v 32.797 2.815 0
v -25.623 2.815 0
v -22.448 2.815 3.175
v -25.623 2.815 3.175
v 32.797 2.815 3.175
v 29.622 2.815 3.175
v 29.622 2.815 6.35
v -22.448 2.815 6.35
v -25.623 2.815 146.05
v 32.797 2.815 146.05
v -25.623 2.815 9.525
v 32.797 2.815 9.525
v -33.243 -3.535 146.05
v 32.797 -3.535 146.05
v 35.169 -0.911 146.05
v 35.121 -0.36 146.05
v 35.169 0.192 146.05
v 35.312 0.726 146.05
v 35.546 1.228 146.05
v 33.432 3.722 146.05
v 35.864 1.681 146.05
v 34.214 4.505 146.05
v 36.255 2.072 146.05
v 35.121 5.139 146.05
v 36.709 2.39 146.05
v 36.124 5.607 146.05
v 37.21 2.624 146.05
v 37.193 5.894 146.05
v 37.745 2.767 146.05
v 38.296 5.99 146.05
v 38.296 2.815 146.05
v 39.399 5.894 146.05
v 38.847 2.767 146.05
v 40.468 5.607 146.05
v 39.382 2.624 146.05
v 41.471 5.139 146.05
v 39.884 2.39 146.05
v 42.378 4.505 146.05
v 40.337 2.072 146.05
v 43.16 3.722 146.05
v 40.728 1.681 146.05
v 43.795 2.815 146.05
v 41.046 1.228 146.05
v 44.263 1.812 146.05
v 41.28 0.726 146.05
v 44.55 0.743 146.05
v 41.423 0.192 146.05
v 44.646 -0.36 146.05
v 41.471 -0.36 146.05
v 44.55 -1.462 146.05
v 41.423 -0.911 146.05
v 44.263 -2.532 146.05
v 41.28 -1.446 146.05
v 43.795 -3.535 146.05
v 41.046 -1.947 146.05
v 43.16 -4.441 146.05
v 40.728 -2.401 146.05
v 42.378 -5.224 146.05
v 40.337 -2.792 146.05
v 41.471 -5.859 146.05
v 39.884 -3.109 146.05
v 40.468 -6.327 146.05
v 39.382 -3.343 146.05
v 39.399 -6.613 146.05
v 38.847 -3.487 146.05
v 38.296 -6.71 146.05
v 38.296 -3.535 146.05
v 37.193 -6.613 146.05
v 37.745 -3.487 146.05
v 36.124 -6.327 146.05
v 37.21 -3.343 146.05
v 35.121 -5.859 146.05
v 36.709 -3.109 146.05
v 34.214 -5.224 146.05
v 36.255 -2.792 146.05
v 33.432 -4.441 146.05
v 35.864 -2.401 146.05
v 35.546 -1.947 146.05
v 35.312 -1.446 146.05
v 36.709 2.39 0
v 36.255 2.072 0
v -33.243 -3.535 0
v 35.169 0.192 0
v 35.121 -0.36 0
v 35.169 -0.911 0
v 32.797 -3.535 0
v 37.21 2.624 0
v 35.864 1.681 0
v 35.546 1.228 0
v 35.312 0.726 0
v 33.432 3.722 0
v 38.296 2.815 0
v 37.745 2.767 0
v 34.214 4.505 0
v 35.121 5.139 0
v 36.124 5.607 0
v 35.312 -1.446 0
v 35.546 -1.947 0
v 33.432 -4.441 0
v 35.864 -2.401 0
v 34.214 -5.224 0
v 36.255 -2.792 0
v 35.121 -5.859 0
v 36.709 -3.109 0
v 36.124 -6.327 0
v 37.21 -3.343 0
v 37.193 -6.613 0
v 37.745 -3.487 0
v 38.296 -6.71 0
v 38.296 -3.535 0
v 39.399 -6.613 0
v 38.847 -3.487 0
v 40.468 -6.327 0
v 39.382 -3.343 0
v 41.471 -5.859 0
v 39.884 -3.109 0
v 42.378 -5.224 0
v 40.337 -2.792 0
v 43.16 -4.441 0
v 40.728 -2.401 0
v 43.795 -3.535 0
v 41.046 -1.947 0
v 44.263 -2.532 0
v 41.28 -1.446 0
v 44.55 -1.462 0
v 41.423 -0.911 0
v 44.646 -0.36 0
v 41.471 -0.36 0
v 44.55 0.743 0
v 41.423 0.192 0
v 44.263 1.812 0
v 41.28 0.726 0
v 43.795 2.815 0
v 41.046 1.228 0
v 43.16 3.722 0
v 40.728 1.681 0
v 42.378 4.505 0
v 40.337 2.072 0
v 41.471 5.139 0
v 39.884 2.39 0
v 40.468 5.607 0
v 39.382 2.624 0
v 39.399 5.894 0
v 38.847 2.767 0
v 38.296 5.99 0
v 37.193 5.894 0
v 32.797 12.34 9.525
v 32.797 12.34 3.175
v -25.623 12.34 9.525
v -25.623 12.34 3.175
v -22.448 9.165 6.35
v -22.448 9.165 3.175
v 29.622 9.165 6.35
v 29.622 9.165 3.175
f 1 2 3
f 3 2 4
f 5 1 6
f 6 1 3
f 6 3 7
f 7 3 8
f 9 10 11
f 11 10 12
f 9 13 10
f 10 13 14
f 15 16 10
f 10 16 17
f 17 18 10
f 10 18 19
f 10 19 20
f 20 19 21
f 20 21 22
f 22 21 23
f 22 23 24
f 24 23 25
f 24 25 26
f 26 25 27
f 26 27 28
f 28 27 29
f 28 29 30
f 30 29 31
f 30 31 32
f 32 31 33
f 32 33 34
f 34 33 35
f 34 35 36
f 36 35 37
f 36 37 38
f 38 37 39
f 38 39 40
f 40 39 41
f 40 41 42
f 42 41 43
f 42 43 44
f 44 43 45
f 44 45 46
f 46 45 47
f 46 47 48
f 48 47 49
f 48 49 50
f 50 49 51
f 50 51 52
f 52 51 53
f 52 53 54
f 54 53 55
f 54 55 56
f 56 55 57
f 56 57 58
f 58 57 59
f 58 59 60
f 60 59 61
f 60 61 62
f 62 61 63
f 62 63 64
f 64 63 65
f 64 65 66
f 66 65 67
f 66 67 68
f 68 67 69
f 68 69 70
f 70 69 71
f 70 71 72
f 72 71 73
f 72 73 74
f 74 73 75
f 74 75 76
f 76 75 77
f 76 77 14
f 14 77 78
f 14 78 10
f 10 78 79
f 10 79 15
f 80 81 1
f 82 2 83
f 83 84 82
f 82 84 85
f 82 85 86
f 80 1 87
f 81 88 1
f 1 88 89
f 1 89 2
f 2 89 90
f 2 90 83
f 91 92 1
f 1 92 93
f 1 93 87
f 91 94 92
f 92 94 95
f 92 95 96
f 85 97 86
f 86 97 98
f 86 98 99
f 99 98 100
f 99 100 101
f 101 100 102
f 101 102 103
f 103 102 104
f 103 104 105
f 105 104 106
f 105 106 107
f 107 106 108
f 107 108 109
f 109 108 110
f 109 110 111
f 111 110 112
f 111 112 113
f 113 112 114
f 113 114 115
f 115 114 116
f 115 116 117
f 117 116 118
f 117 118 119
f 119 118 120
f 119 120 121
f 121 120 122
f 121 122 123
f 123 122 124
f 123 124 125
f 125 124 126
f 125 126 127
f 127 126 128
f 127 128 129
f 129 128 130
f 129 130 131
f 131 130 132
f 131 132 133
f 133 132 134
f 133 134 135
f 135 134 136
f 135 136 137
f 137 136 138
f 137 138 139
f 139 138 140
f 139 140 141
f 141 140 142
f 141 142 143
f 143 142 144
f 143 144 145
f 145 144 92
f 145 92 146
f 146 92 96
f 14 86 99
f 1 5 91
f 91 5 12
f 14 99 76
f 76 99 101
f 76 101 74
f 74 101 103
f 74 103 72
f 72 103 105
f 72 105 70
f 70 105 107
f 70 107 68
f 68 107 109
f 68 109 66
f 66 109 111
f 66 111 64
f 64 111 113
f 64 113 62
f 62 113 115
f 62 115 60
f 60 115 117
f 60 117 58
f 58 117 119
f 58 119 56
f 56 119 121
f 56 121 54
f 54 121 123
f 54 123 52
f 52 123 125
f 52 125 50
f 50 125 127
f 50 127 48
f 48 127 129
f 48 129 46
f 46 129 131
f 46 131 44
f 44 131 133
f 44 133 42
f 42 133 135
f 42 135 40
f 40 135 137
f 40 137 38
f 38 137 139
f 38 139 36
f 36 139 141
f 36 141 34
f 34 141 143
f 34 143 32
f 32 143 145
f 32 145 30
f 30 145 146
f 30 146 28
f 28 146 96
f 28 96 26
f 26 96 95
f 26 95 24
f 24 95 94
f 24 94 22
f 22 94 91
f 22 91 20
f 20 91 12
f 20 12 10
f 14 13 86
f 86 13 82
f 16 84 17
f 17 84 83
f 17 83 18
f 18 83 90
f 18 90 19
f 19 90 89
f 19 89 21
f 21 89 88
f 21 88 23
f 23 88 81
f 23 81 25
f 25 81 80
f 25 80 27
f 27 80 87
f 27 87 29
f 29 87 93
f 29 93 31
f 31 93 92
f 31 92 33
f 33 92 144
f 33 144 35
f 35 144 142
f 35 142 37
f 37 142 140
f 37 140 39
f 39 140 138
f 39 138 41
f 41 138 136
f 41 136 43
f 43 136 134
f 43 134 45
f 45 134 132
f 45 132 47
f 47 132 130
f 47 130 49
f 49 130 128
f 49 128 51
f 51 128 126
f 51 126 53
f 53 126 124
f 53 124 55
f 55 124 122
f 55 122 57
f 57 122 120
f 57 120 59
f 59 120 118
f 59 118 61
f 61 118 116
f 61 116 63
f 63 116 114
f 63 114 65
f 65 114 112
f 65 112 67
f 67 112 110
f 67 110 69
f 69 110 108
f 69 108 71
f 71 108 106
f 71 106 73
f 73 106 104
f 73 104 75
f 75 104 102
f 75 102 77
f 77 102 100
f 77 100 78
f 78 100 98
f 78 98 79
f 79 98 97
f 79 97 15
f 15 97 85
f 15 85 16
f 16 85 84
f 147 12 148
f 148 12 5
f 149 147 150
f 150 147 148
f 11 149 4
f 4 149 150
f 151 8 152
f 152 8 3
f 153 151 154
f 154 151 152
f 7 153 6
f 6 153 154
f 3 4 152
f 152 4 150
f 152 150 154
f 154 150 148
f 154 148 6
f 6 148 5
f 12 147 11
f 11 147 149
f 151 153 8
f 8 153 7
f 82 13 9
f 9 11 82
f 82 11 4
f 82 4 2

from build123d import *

# Parameters (mm, degrees)
SKETCH1_R           = 3.175
BOSS_EXTRUDE1_DEPTH = 146.05
BOSS_EXTRUDE2_DEPTH = 3.175
SKETCH3_W           = 58.42
SKETCH3_H           = 9.525
BOSS_EXTRUDE3_DEPTH = 3.175
BOSS_EXTRUDE4_DEPTH = 146.05
CUT_EXTRUDE1_DEPTH  = 146.05


with BuildPart() as part:
    # Sketch1 → Boss-Extrude1 (new body)
    with BuildSketch(Plane.XY):
        with BuildLine():
            Line((-33.243254954, 2.815203929), (-25.623254954, -3.534796071))
            Line((-25.623254954, -3.534796071), (32.796745046, -3.534796071))
            ThreePointArc((32.796745046, -3.534796071), (44.64600636, -0.359796071), (32.796745046, 2.815203929))
            Line((32.796745046, 2.815203929), (-33.243254954, 2.815203929))
        make_face()
        with Locations((38.29600636, -0.359796071)):
            Circle(SKETCH1_R, mode=Mode.SUBTRACT)
    extrude(amount=BOSS_EXTRUDE1_DEPTH)

    # Sketch2 → Boss-Extrude2 (add)
    with BuildSketch(Plane.XY.offset(3.175)):
        Polygon((-22.448254954, 2.815203929), (-25.623254954, 2.815203929), (-25.623254954, 12.340203929), (32.796745046, 12.340203929), (32.796745046, 2.815203929), (29.621745046, 2.815203929), (29.621745046, 9.165203929), (-22.448254954, 9.165203929), align=None)
    extrude(amount=BOSS_EXTRUDE2_DEPTH)

    # Sketch3 → Boss-Extrude3 (add)
    with BuildSketch(Plane.XY.offset(6.35)):
        with Locations((3.586745046, 7.577703929)):
            Rectangle(SKETCH3_W, SKETCH3_H)
    extrude(amount=BOSS_EXTRUDE3_DEPTH)

    # Sketch4 → Boss-Extrude4 (add)
    with BuildSketch(Plane.XY.offset(146.05)):
        Polygon((-33.243254954, 2.815203929), (-33.243254954, -3.534796071), (-25.623254954, -3.534796071), align=None)
    extrude(amount=-BOSS_EXTRUDE4_DEPTH)

    # Sketch5 → Cut-Extrude1 (cut)
    with BuildSketch(Plane.XY.offset(146.05)):
        Polygon((-33.243254954, -3.534796071), (-25.623254954, 2.815203929), (-33.243254954, 2.815203929), align=None)
    extrude(amount=-CUT_EXTRUDE1_DEPTH, mode=Mode.SUBTRACT)


solid = part.part
